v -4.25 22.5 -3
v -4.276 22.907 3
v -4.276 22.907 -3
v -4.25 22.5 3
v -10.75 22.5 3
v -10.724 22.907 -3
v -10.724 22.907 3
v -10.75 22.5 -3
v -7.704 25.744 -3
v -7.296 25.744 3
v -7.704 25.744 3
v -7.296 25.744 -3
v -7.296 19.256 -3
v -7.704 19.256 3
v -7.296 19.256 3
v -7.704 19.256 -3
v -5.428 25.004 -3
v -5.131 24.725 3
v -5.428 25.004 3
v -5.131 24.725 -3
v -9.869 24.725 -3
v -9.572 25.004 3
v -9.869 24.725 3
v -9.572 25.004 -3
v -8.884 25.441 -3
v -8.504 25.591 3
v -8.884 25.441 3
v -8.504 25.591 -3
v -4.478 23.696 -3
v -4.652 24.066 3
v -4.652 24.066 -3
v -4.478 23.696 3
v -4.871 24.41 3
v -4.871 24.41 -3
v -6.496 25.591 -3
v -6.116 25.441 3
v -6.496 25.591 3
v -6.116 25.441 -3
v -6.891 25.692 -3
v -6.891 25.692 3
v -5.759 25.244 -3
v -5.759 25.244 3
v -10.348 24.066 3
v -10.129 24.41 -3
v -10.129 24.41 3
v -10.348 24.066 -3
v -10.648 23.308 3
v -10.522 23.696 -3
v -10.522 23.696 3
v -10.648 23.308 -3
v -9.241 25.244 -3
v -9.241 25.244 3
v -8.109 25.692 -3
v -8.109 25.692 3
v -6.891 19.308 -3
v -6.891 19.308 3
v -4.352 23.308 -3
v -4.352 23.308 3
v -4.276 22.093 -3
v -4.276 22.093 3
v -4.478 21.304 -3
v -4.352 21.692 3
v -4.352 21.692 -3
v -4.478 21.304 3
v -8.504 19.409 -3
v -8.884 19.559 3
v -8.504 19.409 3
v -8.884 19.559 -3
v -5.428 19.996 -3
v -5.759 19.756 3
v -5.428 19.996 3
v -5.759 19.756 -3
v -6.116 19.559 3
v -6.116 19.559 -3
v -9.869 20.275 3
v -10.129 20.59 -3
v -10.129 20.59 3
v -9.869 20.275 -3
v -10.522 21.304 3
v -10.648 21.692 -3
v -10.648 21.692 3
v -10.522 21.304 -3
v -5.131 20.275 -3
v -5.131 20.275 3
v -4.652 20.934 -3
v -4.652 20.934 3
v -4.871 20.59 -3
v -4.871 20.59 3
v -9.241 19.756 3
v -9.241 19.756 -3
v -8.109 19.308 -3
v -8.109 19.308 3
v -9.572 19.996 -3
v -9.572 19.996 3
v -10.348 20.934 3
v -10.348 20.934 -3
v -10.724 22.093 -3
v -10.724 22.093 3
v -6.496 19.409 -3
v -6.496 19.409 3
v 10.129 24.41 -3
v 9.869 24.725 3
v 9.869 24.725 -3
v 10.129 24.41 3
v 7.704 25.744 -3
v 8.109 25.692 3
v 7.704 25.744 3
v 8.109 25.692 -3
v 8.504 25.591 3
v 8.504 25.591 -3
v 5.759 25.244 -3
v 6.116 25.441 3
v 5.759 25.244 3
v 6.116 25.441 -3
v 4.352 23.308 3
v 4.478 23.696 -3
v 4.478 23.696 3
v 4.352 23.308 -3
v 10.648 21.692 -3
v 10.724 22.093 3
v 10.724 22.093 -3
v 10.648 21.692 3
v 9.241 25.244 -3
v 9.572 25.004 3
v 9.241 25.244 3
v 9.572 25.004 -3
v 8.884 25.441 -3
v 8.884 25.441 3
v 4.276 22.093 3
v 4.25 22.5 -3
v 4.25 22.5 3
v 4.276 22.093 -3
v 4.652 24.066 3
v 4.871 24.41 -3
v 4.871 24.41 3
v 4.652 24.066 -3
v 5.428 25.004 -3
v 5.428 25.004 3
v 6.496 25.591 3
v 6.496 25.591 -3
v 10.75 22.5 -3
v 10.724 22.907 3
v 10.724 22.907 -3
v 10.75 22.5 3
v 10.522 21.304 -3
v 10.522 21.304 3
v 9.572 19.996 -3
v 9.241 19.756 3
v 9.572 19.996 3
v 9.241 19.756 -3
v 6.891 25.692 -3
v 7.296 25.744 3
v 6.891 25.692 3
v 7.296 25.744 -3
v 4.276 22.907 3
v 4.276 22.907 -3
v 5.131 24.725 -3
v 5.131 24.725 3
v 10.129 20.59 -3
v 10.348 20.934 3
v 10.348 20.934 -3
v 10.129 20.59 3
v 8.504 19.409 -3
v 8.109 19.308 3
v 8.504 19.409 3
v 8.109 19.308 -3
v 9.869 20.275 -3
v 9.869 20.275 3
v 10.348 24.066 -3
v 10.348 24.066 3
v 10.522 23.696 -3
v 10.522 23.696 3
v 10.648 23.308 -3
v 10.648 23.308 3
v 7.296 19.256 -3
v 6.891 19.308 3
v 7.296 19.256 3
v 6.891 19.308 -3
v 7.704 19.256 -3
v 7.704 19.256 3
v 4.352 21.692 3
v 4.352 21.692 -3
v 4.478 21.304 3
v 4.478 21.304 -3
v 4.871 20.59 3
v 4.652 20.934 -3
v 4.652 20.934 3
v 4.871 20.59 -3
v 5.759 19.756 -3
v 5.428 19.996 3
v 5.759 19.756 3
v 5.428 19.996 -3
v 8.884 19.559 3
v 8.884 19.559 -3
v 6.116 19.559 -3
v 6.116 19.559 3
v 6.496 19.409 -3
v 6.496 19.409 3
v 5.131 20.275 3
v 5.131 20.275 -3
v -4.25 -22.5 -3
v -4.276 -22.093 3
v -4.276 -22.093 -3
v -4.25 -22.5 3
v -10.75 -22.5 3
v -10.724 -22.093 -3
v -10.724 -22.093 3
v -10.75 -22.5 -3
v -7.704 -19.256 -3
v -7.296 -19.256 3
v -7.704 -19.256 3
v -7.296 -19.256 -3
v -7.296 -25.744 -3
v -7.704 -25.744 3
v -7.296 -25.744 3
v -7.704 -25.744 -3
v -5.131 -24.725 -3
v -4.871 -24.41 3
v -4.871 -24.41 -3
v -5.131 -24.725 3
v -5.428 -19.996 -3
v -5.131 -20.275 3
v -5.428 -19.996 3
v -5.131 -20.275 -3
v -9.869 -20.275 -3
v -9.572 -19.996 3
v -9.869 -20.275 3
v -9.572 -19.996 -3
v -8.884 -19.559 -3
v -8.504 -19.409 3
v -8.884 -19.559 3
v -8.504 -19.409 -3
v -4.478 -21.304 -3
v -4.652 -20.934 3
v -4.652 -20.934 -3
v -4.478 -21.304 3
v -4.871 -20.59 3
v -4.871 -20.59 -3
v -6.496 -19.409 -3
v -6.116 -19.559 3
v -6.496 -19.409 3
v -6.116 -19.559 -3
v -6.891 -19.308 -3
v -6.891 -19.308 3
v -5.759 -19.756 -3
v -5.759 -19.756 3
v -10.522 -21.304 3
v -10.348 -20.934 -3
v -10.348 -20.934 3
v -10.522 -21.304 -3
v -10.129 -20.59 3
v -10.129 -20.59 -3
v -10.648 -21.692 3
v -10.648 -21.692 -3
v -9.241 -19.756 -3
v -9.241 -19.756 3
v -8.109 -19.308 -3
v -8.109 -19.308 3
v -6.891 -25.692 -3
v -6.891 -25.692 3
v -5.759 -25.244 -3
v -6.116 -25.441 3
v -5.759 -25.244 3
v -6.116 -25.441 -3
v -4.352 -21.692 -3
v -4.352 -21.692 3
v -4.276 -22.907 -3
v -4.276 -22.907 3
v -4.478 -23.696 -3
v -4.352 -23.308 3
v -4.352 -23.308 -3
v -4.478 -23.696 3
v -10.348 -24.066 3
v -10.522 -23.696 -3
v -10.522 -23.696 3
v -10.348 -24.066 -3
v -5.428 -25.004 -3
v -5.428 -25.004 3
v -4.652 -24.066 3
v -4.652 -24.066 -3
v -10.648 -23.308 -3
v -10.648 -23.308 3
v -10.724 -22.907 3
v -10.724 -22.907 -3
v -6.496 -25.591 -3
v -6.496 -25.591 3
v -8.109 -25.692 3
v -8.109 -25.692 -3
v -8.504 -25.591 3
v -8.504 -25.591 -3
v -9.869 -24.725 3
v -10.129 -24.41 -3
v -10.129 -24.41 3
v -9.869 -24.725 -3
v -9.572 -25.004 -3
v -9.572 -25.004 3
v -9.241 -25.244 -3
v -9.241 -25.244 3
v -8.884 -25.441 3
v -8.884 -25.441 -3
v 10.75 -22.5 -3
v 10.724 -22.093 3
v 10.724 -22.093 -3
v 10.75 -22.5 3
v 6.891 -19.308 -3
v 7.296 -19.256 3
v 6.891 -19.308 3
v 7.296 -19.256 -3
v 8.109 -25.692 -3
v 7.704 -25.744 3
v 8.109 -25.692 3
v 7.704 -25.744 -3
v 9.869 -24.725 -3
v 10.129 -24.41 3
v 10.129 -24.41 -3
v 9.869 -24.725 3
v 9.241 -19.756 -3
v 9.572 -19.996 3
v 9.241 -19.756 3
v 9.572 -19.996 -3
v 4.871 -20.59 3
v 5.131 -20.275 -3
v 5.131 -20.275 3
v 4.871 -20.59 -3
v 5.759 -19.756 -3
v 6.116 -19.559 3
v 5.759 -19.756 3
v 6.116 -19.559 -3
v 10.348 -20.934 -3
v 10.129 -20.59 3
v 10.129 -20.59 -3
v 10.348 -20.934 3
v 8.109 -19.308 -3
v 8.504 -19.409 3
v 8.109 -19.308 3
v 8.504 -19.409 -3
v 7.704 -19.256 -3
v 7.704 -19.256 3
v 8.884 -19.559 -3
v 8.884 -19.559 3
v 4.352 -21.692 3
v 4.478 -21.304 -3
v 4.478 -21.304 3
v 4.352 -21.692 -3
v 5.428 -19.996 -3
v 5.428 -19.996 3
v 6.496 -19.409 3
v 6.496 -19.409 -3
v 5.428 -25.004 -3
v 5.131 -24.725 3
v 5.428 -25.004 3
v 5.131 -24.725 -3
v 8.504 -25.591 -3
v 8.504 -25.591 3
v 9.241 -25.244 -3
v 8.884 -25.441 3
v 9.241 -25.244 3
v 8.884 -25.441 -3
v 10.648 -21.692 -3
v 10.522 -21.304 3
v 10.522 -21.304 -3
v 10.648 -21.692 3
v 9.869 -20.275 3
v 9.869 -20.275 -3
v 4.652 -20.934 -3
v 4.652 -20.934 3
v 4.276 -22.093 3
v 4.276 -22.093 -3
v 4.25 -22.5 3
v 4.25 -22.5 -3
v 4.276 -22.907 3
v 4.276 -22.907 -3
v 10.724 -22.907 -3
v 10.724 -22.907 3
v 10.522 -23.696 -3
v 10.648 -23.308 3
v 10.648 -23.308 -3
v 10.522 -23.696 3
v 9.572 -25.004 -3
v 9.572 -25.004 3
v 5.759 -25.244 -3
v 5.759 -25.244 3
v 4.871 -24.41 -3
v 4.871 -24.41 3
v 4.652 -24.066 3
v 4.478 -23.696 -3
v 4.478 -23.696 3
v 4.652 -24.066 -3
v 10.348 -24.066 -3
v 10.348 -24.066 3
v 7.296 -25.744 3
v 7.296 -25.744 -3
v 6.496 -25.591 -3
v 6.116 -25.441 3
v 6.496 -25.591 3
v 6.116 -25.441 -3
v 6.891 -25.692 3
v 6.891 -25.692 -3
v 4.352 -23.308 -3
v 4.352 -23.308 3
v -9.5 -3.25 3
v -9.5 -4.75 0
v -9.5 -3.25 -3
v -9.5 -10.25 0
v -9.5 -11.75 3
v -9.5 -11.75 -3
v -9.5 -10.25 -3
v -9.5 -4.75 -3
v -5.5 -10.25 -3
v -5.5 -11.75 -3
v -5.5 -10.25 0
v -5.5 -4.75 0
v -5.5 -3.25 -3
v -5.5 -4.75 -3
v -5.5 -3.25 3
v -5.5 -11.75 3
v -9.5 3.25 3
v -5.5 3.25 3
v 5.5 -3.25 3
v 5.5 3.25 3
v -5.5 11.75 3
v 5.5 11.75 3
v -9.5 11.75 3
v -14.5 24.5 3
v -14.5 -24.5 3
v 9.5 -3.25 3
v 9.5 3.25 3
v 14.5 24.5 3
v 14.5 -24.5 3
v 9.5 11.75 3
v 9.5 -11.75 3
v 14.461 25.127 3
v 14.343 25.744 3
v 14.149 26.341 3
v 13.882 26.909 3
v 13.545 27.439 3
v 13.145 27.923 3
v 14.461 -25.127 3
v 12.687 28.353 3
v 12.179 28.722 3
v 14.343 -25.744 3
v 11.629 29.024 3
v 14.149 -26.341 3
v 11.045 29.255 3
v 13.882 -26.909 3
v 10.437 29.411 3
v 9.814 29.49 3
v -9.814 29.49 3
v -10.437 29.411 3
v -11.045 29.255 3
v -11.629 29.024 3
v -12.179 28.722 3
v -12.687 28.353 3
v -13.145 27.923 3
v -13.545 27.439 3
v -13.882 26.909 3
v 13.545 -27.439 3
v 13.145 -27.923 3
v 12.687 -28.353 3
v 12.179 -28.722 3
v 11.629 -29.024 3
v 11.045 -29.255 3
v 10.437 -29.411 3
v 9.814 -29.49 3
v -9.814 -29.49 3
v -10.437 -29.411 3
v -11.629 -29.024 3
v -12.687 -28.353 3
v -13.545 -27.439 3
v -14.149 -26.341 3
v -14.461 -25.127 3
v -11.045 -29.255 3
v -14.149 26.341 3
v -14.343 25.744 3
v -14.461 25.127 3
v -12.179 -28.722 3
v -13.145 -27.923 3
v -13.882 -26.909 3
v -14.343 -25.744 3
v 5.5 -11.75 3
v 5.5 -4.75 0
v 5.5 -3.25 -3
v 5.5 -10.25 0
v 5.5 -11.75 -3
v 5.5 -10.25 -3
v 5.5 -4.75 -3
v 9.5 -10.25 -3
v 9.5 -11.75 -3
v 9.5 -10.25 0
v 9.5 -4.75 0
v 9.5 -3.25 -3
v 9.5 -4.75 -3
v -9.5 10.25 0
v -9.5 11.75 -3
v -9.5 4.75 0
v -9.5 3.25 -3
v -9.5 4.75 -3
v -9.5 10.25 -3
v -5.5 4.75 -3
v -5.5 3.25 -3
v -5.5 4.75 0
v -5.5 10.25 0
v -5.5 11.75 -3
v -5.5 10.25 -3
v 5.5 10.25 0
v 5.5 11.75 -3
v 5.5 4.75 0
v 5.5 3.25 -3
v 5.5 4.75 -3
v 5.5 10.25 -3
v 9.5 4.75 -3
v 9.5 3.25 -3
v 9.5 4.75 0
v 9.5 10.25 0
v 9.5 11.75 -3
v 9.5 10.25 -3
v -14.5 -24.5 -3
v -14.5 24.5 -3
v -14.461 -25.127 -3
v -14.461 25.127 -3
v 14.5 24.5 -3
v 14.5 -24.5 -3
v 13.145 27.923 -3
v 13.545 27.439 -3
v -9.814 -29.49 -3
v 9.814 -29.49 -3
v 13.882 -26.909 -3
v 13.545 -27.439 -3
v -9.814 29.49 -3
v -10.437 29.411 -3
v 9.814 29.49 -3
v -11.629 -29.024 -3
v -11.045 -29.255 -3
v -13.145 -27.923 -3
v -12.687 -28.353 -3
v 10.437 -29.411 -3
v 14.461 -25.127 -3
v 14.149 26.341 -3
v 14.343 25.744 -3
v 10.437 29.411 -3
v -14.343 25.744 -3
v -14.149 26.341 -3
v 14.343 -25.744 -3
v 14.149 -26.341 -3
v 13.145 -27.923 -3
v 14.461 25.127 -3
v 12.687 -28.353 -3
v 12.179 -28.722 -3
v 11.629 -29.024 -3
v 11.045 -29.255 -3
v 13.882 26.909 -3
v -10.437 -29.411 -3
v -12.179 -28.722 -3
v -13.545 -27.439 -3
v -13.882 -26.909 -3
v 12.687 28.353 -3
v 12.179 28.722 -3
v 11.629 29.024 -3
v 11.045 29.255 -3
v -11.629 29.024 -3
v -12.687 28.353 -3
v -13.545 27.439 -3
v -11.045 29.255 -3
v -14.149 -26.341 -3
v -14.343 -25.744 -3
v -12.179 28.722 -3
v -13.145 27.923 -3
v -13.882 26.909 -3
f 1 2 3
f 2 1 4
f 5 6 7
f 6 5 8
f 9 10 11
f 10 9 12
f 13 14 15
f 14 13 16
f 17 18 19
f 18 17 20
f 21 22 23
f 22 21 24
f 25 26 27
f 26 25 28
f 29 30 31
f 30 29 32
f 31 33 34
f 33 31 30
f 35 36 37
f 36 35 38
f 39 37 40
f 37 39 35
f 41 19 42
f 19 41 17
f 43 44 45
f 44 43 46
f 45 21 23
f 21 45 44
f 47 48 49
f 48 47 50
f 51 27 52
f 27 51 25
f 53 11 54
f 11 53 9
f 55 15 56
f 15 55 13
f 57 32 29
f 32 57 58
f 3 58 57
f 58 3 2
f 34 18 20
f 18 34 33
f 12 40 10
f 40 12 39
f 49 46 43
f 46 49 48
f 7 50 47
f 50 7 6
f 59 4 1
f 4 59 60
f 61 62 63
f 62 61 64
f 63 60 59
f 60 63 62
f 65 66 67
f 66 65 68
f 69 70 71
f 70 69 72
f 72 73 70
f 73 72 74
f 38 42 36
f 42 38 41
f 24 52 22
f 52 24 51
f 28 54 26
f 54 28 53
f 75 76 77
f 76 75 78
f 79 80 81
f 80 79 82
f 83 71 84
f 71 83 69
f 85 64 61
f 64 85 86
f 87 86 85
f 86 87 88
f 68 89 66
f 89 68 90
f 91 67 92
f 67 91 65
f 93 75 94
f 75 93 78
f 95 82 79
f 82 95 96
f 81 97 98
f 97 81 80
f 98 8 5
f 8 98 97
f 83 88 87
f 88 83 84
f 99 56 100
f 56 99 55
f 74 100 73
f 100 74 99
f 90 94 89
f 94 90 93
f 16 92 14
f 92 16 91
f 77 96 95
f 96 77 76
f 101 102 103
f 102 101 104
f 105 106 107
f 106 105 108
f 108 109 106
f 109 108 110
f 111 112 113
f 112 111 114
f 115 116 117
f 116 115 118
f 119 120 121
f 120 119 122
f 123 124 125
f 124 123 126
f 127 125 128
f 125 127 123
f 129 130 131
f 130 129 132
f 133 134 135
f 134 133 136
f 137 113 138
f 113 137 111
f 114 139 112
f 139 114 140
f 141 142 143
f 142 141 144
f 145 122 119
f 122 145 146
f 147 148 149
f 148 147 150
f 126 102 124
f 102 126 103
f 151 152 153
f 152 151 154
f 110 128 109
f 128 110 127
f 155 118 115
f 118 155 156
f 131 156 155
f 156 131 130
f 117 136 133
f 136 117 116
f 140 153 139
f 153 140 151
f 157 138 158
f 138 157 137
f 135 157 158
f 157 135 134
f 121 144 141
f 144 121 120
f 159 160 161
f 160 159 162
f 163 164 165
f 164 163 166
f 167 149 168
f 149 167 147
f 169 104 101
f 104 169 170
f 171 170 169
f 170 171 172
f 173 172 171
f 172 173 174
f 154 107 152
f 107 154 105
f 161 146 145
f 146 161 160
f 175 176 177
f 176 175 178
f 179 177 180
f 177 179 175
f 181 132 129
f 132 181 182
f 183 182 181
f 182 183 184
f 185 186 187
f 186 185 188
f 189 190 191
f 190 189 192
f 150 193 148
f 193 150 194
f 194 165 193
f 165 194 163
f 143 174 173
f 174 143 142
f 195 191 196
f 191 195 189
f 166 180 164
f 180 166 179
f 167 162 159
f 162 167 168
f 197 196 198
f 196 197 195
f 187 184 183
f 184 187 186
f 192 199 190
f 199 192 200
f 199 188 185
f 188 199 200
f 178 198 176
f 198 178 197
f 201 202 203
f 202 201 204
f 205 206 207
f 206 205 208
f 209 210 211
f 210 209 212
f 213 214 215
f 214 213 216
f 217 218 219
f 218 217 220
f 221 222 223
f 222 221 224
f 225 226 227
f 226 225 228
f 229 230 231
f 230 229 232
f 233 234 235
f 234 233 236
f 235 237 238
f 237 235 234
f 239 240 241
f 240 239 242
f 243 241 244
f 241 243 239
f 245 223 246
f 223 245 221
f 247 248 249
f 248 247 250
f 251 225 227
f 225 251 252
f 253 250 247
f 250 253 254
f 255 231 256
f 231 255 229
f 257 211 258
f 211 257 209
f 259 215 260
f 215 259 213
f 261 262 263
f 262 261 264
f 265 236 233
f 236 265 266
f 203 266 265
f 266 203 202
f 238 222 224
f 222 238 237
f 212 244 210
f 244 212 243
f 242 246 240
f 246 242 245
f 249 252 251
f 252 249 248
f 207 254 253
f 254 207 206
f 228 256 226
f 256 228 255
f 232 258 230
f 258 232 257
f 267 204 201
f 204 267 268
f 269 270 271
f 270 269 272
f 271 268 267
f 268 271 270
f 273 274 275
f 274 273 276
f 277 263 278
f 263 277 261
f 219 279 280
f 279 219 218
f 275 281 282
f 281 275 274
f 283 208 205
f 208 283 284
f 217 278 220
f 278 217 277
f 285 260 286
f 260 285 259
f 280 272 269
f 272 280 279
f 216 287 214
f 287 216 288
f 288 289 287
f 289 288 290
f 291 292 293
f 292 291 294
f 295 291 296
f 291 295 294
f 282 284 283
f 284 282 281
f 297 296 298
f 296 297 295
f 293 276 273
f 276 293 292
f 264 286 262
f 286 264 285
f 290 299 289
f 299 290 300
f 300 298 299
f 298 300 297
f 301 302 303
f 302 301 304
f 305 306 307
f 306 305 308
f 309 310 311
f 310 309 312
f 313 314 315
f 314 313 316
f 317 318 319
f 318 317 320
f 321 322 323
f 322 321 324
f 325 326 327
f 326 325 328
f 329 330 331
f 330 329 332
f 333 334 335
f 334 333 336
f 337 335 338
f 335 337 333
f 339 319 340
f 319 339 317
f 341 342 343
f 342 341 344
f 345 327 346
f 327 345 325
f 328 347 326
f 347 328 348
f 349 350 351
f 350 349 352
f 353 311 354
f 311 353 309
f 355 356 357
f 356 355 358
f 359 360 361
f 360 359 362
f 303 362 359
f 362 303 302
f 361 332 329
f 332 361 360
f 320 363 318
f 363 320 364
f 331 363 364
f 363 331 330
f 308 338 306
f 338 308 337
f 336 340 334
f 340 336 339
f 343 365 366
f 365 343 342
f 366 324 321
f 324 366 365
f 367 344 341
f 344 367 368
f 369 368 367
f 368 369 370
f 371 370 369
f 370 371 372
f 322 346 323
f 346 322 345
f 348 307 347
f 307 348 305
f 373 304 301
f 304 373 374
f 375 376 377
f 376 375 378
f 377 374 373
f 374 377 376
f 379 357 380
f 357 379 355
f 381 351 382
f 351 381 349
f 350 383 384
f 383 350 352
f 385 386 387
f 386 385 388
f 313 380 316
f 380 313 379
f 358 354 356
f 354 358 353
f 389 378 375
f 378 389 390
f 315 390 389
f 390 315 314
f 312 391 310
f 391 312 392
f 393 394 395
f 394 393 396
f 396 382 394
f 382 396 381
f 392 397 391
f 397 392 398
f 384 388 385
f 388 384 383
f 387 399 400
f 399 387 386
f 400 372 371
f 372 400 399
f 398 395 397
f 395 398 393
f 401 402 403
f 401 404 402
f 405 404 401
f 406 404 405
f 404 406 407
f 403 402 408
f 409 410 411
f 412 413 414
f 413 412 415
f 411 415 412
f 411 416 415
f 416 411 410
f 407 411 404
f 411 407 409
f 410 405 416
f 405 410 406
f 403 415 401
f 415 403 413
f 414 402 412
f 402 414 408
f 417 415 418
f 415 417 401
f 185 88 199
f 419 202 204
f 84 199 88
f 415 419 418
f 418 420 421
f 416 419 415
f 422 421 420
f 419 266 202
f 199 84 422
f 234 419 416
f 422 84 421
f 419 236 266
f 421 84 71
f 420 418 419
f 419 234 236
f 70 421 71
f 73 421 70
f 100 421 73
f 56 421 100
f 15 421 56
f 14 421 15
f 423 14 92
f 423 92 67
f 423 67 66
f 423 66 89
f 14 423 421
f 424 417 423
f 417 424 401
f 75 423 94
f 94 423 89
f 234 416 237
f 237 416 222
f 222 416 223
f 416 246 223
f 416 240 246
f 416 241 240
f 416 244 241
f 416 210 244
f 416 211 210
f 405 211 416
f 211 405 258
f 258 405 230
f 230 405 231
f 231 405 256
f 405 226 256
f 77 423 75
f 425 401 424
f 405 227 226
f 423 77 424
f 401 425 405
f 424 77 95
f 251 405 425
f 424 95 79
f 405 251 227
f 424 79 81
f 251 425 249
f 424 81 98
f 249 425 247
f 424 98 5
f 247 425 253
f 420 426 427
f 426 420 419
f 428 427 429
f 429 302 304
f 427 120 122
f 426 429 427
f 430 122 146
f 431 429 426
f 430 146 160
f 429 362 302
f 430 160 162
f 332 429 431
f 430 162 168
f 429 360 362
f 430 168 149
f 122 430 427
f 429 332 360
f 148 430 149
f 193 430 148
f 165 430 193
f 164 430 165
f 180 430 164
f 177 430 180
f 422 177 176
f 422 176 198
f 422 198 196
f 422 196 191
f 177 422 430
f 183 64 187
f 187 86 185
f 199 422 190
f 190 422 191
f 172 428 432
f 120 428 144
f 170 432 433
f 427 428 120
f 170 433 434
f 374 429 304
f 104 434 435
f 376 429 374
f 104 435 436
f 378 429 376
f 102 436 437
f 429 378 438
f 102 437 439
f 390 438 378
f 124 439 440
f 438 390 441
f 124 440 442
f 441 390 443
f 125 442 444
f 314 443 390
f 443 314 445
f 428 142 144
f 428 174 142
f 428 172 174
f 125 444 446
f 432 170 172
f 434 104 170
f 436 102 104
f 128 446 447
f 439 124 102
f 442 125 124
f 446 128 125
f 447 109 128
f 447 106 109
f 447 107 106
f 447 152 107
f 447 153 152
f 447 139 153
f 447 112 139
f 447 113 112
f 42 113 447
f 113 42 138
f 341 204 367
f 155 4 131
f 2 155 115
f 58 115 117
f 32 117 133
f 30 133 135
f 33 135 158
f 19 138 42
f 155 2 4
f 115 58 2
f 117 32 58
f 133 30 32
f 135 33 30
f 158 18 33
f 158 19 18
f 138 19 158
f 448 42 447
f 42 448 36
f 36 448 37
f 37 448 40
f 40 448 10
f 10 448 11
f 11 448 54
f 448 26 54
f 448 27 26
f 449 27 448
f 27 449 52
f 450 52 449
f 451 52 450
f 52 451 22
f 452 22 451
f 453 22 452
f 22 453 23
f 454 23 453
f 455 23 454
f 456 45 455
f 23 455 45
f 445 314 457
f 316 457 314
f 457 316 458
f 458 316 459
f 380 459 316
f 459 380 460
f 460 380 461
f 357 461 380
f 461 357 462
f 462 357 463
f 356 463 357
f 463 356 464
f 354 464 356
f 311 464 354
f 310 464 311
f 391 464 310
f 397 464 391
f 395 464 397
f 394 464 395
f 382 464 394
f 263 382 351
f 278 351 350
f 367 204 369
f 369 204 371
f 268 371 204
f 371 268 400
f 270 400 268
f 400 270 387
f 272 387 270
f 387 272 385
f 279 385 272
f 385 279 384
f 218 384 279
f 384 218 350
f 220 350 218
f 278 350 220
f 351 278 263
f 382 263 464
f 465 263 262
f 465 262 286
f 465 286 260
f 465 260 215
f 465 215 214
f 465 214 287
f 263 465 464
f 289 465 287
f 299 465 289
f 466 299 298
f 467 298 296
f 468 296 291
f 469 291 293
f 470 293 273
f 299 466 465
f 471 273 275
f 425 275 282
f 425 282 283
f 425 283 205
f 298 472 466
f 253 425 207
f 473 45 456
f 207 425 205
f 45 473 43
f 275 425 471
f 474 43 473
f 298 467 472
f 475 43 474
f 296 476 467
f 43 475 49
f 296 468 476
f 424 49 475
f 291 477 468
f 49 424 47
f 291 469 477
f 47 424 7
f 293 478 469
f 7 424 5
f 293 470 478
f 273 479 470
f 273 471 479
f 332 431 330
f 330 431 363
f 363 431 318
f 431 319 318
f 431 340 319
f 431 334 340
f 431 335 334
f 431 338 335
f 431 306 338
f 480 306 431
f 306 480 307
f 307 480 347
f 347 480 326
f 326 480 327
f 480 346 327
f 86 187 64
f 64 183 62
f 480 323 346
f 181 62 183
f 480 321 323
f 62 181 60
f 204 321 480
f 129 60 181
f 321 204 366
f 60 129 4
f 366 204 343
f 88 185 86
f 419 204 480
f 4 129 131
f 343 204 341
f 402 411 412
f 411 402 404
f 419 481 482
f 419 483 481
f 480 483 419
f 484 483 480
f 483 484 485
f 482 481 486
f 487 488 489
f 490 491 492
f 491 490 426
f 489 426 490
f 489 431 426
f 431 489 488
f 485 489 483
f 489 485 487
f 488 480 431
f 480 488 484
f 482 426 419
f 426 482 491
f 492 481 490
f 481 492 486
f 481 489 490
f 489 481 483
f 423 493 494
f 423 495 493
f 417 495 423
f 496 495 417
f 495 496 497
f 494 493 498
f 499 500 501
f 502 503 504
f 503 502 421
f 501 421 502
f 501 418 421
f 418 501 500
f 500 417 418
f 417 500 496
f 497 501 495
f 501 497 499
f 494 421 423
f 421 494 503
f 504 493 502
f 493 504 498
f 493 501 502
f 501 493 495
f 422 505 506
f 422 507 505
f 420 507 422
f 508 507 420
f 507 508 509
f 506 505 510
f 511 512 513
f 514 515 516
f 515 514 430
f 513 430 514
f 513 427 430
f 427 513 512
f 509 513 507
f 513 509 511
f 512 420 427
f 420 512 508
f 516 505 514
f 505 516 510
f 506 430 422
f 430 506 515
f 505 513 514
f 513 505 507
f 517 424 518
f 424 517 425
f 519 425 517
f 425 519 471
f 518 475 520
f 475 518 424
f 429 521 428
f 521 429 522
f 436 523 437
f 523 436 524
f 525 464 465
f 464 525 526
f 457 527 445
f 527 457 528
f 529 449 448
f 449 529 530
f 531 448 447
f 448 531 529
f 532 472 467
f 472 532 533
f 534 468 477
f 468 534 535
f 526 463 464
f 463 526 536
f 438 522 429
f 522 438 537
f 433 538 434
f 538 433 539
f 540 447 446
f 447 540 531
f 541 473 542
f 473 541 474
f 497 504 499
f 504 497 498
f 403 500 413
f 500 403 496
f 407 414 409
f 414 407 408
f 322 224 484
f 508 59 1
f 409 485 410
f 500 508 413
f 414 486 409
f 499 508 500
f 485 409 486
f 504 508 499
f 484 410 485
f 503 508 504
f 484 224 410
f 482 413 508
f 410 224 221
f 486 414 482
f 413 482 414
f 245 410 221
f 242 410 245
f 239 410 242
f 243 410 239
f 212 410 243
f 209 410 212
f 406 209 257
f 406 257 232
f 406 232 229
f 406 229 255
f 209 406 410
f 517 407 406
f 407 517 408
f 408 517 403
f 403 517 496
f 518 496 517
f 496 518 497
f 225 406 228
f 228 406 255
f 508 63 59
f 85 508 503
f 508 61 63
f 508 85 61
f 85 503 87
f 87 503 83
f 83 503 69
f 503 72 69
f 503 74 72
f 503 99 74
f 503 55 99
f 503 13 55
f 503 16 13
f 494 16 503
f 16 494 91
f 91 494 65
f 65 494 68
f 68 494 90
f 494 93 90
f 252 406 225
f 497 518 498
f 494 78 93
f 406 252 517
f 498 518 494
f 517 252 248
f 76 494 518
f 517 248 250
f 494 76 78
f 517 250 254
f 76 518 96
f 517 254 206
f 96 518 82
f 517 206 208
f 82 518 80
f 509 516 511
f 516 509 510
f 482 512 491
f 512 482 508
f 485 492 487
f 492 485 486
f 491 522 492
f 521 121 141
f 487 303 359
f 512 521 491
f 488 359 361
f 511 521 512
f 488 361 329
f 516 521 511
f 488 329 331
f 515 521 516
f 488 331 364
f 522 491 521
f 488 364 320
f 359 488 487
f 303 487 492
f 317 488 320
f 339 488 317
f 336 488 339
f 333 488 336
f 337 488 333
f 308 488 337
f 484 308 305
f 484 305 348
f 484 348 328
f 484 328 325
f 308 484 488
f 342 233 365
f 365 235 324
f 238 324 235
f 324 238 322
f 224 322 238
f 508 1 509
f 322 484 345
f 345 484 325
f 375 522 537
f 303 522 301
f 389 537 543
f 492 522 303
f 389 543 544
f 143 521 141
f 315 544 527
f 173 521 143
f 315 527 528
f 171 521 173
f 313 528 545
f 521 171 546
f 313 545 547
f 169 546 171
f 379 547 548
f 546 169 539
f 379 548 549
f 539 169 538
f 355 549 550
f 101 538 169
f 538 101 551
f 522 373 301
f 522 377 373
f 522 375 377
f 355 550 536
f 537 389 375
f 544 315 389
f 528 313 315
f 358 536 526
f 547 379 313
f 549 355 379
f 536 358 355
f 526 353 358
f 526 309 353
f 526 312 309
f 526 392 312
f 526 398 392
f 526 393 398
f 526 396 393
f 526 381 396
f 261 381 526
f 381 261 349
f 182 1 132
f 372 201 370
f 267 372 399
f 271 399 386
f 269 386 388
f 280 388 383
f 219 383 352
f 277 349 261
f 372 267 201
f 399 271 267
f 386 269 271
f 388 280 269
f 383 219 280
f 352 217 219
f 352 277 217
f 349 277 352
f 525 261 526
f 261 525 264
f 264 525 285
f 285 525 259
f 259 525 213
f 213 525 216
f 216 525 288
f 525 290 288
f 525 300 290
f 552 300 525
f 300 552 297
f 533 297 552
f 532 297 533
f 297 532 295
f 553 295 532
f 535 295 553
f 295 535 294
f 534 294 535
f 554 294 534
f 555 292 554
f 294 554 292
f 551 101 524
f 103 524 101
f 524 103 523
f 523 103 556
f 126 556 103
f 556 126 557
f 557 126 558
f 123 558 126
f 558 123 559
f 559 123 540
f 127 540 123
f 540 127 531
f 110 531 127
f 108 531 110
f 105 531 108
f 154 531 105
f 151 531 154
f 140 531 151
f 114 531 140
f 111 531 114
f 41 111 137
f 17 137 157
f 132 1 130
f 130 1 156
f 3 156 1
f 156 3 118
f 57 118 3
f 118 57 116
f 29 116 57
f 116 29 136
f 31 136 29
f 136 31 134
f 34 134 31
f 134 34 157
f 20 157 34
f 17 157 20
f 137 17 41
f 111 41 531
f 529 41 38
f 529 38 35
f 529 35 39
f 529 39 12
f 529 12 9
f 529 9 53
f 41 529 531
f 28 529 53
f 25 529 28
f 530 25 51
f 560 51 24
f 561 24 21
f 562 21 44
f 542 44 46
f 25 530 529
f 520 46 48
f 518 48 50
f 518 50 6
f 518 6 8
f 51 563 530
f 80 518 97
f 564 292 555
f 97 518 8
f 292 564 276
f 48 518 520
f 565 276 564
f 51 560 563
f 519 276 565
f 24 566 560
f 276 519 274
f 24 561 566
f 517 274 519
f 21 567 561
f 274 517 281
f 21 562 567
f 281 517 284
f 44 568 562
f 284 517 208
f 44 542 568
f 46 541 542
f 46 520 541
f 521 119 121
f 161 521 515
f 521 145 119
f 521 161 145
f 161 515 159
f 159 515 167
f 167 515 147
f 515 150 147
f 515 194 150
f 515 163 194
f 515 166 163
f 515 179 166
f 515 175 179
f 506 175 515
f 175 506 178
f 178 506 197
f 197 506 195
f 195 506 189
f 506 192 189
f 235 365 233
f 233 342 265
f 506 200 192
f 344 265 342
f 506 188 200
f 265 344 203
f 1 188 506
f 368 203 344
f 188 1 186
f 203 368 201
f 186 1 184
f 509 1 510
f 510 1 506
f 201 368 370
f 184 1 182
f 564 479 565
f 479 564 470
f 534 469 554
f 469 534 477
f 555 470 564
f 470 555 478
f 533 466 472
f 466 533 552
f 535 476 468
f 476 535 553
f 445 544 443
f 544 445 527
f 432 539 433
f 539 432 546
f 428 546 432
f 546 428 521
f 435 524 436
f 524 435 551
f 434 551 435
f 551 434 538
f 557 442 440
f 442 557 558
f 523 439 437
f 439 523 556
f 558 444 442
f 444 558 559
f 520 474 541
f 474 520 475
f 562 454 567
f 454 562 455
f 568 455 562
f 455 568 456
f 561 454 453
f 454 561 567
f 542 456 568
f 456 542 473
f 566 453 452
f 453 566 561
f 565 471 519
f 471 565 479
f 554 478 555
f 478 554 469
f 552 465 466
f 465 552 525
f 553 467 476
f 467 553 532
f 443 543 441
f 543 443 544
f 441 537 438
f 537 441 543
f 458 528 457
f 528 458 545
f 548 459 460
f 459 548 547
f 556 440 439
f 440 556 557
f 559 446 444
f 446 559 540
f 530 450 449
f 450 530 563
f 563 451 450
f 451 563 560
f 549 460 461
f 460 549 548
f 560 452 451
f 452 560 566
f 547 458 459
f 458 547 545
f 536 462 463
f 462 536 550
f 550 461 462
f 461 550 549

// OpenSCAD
$fn = 50;


difference() {
	union() {
		translate(v = [0, 0, -3.0000000000]) {
			rotate(a = [0, 0, 0]) {
				hull() {
					translate(v = [-9.5000000000, 24.5000000000, 0]) {
						rotate(a = [0, 0, 0]) {
							translate(v = [0, 0, 0]) {
								rotate(a = [0, 0, 0]) {
									cylinder(h = 6, r = 5);
								}
							}
						}
					}
					translate(v = [9.5000000000, 24.5000000000, 0]) {
						rotate(a = [0, 0, 0]) {
							translate(v = [0, 0, 0]) {
								rotate(a = [0, 0, 0]) {
									cylinder(h = 6, r = 5);
								}
							}
						}
					}
					translate(v = [-9.5000000000, -24.5000000000, 0]) {
						rotate(a = [0, 0, 0]) {
							translate(v = [0, 0, 0]) {
								rotate(a = [0, 0, 0]) {
									cylinder(h = 6, r = 5);
								}
							}
						}
					}
					translate(v = [9.5000000000, -24.5000000000, 0]) {
						rotate(a = [0, 0, 0]) {
							translate(v = [0, 0, 0]) {
								rotate(a = [0, 0, 0]) {
									cylinder(h = 6, r = 5);
								}
							}
						}
					}
				}
			}
		}
	}
	union() {
		translate(v = [-7.5000000000, 22.5000000000, -125.0000000000]) {
			rotate(a = [0, 0, 0]) {
				cylinder(h = 250, r = 3.2500000000);
			}
		}
		translate(v = [7.5000000000, 22.5000000000, -125.0000000000]) {
			rotate(a = [0, 0, 0]) {
				cylinder(h = 250, r = 3.2500000000);
			}
		}
		translate(v = [-7.5000000000, -22.5000000000, -125.0000000000]) {
			rotate(a = [0, 0, 0]) {
				cylinder(h = 250, r = 3.2500000000);
			}
		}
		translate(v = [7.5000000000, -22.5000000000, -125.0000000000]) {
			rotate(a = [0, 0, 0]) {
				cylinder(h = 250, r = 3.2500000000);
			}
		}
		translate(v = [-9.5000000000, -11.7500000000, -50]) {
			rotate(a = [0, 0, 0]) {
				cube(size = [4, 1.5000000000, 100]);
			}
		}
		translate(v = [-9.5000000000, -4.7500000000, -50]) {
			rotate(a = [0, 0, 0]) {
				cube(size = [4, 1.5000000000, 100]);
			}
		}
		translate(v = [-9.5000000000, -11.7500000000, 0]) {
			rotate(a = [0, 0, 0]) {
				cube(size = [4, 8.5000000000, 3]);
			}
		}
		translate(v = [5.5000000000, -11.7500000000, -50]) {
			rotate(a = [0, 0, 0]) {
				cube(size = [4, 1.5000000000, 100]);
			}
		}
		translate(v = [5.5000000000, -4.7500000000, -50]) {
			rotate(a = [0, 0, 0]) {
				cube(size = [4, 1.5000000000, 100]);
			}
		}
		translate(v = [5.5000000000, -11.7500000000, 0]) {
			rotate(a = [0, 0, 0]) {
				cube(size = [4, 8.5000000000, 3]);
			}
		}
		translate(v = [-9.5000000000, 3.2500000000, -50]) {
			rotate(a = [0, 0, 0]) {
				cube(size = [4, 1.5000000000, 100]);
			}
		}
		translate(v = [-9.5000000000, 10.2500000000, -50]) {
			rotate(a = [0, 0, 0]) {
				cube(size = [4, 1.5000000000, 100]);
			}
		}
		translate(v = [-9.5000000000, 3.2500000000, 0]) {
			rotate(a = [0, 0, 0]) {
				cube(size = [4, 8.5000000000, 3]);
			}
		}
		translate(v = [5.5000000000, 3.2500000000, -50]) {
			rotate(a = [0, 0, 0]) {
				cube(size = [4, 1.5000000000, 100]);
			}
		}
		translate(v = [5.5000000000, 10.2500000000, -50]) {
			rotate(a = [0, 0, 0]) {
				cube(size = [4, 1.5000000000, 100]);
			}
		}
		translate(v = [5.5000000000, 3.2500000000, 0]) {
			rotate(a = [0, 0, 0]) {
				cube(size = [4, 8.5000000000, 3]);
			}
		}
	}
}
